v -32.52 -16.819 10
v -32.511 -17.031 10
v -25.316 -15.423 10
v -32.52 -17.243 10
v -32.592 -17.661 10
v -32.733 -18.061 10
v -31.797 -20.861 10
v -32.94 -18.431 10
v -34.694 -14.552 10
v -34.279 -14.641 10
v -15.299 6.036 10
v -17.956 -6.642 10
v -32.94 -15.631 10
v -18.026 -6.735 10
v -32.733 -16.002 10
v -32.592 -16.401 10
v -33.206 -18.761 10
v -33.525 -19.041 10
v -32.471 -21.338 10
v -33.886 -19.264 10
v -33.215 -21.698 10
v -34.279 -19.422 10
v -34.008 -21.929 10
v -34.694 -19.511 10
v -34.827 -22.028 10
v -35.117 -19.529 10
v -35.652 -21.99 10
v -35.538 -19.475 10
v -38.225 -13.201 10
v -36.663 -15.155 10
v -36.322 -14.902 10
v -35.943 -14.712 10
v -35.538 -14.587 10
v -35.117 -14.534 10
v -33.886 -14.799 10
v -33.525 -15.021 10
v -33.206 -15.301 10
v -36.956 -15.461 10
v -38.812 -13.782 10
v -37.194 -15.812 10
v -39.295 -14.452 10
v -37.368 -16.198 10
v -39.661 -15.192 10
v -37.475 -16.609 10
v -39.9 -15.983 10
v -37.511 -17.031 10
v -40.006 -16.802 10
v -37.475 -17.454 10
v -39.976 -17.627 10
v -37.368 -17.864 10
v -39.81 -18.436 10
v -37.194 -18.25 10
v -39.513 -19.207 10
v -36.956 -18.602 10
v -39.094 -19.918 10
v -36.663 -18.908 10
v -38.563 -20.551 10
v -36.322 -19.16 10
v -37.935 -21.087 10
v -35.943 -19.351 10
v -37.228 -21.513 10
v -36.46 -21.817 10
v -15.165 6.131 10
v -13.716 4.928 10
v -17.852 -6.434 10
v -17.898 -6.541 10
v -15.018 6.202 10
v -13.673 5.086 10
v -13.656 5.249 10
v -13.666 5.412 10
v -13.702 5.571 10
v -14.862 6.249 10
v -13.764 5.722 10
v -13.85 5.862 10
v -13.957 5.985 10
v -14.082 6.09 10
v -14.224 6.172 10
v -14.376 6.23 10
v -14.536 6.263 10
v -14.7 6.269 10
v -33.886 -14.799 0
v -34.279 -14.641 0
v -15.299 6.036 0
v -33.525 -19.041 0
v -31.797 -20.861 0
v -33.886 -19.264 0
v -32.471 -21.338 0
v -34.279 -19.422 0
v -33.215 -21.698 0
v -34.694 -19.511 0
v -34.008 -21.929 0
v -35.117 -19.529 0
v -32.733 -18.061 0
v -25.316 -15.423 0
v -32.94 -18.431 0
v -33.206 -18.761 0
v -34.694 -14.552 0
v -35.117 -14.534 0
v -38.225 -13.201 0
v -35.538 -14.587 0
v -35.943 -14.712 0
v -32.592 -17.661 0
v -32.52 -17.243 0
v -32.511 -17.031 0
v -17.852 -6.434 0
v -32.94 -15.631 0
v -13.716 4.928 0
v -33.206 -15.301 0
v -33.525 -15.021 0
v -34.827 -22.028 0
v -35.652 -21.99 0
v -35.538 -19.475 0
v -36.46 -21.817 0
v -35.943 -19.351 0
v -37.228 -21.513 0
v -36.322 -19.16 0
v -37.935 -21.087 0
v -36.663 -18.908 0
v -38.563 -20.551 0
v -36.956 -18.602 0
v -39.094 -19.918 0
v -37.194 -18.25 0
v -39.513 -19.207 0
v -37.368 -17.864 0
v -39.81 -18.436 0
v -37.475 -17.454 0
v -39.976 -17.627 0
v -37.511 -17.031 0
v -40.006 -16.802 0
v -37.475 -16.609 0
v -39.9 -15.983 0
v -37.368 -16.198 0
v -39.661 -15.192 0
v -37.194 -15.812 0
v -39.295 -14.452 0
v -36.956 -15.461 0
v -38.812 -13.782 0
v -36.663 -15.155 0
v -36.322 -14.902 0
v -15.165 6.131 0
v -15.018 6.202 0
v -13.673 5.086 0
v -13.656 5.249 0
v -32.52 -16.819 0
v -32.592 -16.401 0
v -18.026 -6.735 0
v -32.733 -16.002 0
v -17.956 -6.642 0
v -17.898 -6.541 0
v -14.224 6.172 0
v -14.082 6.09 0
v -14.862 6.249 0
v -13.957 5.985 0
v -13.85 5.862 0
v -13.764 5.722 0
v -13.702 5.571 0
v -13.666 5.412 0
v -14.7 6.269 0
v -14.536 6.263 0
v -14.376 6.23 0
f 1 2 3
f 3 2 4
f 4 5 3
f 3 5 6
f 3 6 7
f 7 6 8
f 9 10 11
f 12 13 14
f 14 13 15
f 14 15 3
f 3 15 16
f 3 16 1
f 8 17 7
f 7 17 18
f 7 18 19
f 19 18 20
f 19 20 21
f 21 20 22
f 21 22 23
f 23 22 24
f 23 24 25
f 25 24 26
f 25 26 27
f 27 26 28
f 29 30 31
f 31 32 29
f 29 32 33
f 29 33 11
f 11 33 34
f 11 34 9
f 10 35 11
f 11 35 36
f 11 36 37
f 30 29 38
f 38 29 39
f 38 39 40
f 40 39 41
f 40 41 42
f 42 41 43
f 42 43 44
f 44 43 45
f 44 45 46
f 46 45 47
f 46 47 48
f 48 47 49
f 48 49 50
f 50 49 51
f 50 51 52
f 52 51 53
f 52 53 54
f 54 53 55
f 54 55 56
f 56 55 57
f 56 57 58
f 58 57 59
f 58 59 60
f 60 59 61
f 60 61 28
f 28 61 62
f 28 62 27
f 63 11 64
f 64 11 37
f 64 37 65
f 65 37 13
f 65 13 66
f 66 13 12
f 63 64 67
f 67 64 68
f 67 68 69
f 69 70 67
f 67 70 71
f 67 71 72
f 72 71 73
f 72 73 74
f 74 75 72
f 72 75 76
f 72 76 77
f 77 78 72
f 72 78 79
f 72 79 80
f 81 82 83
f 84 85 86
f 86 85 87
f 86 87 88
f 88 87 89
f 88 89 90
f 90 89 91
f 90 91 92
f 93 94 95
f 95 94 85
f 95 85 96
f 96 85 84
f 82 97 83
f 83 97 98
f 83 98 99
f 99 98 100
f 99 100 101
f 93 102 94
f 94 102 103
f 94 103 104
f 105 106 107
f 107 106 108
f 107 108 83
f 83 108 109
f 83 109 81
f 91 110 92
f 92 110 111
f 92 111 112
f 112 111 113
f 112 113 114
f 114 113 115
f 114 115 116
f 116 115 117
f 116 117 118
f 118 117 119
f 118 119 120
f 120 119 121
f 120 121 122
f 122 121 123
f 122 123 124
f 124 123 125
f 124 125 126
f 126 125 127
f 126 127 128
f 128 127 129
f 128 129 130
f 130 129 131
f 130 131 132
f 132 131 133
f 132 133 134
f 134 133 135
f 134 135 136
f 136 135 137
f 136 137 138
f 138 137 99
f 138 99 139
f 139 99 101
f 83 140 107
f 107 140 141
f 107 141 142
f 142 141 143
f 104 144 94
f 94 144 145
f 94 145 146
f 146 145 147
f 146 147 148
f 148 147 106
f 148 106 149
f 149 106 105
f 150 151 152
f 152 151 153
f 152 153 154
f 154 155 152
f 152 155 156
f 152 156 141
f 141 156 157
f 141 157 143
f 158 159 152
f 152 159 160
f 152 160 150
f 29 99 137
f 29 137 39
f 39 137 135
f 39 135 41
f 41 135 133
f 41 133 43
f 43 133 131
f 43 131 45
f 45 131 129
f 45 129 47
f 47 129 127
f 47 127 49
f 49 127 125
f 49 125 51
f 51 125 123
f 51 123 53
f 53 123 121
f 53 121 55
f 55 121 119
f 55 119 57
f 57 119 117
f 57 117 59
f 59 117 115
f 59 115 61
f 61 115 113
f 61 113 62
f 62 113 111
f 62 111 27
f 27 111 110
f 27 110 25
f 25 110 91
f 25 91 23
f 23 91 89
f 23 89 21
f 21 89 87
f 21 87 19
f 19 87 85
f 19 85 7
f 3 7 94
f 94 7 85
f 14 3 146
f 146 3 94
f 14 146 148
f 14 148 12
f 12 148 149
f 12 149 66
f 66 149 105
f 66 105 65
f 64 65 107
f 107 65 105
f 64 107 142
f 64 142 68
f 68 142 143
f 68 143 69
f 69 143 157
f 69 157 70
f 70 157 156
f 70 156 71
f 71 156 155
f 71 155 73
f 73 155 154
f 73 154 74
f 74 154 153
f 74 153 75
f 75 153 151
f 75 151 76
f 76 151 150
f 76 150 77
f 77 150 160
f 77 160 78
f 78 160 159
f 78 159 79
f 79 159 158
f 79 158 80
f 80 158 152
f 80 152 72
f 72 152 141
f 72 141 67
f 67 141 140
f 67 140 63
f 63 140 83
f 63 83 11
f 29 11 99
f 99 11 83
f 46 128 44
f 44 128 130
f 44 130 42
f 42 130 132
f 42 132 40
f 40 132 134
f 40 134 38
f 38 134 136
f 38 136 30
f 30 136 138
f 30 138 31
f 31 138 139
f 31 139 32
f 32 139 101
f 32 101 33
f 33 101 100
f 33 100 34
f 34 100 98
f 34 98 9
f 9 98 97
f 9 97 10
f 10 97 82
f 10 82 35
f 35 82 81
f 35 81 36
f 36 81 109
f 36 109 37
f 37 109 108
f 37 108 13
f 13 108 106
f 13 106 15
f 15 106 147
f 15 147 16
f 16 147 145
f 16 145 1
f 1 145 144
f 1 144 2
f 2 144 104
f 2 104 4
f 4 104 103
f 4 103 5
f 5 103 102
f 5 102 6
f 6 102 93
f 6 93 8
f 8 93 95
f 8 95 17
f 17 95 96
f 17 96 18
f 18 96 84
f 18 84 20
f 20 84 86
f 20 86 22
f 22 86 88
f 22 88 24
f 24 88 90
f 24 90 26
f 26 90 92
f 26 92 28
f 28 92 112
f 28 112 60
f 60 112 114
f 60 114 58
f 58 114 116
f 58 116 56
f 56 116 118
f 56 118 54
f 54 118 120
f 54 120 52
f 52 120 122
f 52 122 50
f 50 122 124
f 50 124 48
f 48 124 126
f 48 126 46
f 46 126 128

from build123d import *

# Parameters (mm, degrees)
SKETCH_1_R      = 2.5
EXTRUDE_1_DEPTH = 10


with BuildPart() as part:
    # 草圖1 → 填料-伸長1 (new body)
    with BuildSketch(Plane.XY):
        with BuildLine():
            Line((-13.71628672, 4.928383), (-17.851865082, -6.434025166))
            ThreePointArc((-17.851865082, -6.434025166), (-17.925532299, -6.592005023), (-18.02551326, -6.734792632))
            Line((-18.02551326, -6.734792632), (-25.315505088, -15.422666584))
            Line((-25.315505088, -15.422666584), (-31.797224631, -20.861475062))
            ThreePointArc((-31.797224631, -20.861475062), (-35.446941393, -22.012226336), (-38.841384895, -20.245190894))
            ThreePointArc((-38.841384895, -20.245190894), (-39.99213617, -16.595474132), (-38.225100728, -13.20103063))
            Line((-38.225100728, -13.20103063), (-15.298766951, 6.036447586))
            ThreePointArc((-15.298766951, 6.036447586), (-14.082402905, 6.089555187), (-13.71628672, 4.928383))
        make_face()
        with Locations((-35.011162679, -17.031252846)):
            Circle(SKETCH_1_R, mode=Mode.SUBTRACT)
    extrude(amount=EXTRUDE_1_DEPTH)


solid = part.part
